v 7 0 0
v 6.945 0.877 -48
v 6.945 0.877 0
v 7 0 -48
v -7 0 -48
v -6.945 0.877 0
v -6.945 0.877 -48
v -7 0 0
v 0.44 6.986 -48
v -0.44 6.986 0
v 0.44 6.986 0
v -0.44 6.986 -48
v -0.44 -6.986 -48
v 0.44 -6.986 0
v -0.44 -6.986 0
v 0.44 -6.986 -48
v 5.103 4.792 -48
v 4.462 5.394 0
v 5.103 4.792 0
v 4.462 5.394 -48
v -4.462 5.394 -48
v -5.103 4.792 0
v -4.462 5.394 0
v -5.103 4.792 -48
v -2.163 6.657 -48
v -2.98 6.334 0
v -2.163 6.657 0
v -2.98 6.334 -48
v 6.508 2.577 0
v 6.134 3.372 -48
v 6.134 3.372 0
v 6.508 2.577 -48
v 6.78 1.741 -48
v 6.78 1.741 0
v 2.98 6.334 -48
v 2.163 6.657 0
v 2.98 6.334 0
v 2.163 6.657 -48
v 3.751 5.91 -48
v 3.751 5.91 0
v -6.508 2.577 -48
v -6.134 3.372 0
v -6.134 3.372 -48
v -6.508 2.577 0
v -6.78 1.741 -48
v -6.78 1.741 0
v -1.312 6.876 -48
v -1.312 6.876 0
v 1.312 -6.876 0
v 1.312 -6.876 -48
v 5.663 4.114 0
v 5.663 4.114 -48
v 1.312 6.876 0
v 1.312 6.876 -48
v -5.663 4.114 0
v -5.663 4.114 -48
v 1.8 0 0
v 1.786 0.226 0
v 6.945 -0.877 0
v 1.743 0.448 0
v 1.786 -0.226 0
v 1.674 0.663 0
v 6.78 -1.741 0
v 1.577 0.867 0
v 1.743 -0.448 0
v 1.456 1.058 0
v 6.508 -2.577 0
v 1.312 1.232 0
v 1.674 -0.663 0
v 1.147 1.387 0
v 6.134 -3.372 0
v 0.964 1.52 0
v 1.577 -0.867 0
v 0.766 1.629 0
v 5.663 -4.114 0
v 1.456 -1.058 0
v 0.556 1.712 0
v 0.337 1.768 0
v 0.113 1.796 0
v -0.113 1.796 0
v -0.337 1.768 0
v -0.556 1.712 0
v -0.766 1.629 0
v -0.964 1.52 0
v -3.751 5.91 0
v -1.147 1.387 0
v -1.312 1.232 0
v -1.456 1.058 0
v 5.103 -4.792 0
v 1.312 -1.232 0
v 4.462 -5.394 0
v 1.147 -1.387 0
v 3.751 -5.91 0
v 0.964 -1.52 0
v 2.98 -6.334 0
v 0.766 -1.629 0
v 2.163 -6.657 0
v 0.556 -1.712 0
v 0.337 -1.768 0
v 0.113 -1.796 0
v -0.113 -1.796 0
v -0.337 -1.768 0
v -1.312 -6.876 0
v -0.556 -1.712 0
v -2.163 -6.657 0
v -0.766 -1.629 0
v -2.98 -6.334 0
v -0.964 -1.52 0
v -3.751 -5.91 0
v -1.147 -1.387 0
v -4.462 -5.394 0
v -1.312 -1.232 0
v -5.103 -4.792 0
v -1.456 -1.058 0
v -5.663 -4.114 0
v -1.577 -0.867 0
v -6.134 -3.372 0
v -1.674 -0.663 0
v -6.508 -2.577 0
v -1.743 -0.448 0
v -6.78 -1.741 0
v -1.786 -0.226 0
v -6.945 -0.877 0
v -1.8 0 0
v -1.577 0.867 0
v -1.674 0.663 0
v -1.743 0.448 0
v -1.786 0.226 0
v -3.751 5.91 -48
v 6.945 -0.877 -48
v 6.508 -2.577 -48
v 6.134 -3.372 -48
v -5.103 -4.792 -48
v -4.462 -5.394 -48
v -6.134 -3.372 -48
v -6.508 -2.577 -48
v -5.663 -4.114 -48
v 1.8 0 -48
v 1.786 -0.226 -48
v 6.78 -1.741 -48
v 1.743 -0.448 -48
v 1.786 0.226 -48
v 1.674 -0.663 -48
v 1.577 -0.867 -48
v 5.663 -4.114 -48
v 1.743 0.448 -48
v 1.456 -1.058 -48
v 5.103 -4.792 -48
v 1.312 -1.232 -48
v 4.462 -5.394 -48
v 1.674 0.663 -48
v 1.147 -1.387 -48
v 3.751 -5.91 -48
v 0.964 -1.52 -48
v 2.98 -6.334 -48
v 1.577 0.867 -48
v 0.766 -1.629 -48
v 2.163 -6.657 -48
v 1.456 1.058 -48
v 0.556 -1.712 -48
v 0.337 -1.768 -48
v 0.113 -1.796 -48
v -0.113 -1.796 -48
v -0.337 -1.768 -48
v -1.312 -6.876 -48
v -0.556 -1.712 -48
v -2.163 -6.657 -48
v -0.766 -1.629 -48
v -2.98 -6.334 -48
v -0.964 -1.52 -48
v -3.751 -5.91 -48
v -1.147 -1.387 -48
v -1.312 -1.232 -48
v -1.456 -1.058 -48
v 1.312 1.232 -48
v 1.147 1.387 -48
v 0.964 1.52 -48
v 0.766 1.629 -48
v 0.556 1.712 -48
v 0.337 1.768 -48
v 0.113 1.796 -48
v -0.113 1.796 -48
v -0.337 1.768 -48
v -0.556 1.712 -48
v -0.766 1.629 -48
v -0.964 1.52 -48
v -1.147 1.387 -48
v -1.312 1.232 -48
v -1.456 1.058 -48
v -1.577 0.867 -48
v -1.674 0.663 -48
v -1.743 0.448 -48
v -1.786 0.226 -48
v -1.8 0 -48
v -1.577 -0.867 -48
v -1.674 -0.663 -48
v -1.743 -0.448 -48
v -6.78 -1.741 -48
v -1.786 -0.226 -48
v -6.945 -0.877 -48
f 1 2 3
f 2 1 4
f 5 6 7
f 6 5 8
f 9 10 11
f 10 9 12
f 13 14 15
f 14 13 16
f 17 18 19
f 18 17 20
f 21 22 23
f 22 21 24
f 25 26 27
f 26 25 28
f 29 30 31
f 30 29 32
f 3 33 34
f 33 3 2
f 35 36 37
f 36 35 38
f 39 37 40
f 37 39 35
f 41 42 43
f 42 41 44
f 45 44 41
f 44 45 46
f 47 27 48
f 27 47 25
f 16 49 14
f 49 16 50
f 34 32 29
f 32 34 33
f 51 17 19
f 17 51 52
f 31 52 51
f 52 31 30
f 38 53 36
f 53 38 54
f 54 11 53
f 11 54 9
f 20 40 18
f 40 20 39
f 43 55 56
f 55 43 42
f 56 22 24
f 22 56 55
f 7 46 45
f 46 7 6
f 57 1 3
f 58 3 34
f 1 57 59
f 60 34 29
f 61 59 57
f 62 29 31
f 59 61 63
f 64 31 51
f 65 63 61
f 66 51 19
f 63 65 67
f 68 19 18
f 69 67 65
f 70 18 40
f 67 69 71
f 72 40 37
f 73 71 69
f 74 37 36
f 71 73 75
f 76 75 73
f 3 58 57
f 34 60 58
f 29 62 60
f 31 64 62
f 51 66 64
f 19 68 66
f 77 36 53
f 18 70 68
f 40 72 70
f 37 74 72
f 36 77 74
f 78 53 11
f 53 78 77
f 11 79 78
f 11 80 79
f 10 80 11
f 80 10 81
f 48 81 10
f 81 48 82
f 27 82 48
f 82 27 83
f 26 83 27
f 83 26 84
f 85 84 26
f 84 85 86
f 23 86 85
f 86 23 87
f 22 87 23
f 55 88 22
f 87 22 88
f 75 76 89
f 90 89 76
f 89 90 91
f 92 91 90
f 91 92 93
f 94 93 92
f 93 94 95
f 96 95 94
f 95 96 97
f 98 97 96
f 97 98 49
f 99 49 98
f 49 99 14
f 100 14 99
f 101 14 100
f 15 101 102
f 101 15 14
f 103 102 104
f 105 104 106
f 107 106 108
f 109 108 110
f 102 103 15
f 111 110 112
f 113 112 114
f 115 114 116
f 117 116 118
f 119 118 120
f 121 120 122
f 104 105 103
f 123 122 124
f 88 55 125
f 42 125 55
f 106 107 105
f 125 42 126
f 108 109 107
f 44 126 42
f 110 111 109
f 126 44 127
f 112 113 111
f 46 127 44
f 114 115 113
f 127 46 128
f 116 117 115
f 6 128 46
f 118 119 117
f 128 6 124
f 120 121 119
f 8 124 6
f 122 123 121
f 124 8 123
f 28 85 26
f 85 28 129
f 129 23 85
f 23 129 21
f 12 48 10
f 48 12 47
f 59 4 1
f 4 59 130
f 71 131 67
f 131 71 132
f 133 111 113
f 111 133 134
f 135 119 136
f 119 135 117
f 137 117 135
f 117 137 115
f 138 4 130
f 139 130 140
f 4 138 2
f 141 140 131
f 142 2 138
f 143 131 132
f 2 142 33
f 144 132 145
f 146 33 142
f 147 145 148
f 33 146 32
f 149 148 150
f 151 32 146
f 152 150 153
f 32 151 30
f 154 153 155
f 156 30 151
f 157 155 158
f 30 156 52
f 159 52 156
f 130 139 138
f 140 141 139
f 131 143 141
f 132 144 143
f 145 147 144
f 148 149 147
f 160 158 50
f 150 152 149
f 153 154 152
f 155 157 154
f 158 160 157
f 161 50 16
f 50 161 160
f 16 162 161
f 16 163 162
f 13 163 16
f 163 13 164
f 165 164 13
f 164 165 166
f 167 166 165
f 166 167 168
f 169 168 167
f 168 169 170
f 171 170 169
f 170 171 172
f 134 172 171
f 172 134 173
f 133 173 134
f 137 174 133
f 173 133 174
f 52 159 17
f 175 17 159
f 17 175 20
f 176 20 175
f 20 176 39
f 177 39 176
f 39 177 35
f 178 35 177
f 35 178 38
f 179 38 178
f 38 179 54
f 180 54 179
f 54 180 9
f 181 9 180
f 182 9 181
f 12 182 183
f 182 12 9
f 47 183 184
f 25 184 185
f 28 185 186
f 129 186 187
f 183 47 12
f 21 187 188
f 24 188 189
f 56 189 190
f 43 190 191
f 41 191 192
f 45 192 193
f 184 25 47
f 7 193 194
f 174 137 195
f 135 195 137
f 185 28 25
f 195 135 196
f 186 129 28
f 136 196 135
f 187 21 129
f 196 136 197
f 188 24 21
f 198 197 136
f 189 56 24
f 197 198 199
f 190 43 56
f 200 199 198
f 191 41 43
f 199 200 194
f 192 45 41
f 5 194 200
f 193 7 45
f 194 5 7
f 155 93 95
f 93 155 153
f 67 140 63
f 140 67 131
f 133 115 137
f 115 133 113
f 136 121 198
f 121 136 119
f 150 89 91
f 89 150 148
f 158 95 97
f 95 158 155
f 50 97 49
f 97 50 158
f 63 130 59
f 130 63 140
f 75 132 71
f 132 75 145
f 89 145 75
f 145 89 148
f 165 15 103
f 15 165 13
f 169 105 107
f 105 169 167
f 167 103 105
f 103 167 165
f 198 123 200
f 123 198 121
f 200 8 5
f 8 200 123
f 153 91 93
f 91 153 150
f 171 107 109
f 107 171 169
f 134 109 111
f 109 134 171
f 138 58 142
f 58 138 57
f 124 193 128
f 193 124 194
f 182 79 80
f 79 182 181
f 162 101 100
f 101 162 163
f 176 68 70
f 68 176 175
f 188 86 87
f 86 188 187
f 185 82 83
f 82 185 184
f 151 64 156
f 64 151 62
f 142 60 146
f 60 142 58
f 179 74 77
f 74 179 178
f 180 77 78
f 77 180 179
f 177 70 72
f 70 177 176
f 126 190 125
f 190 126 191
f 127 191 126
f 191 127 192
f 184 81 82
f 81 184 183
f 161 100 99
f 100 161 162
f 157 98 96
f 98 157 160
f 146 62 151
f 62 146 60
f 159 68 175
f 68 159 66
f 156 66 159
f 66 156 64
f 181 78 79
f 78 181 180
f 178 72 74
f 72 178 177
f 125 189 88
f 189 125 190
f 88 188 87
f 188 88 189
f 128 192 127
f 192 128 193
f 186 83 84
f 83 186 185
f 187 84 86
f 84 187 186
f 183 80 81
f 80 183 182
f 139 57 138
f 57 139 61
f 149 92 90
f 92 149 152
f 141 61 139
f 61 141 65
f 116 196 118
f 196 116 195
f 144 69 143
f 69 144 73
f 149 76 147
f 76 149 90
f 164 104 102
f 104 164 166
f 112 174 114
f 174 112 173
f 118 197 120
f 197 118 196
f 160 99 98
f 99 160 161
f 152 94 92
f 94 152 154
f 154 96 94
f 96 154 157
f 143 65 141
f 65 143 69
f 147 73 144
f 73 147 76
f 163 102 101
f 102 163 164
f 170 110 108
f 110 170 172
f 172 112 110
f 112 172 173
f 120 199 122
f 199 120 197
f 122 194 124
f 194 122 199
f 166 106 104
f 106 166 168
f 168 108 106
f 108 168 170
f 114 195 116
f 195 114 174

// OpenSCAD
$fn = 50;


difference() {
	union() {
		translate(v = [0, 0, -48.0000000000]) {
			cylinder(h = 48, r = 7.0000000000);
		}
		cylinder(h = 0, r = 13.0000000000);
	}
	union() {
		#translate(v = [0, 0, -48]) {
			cylinder(h = 48, r = 1.8000000000);
		}
	}
}
